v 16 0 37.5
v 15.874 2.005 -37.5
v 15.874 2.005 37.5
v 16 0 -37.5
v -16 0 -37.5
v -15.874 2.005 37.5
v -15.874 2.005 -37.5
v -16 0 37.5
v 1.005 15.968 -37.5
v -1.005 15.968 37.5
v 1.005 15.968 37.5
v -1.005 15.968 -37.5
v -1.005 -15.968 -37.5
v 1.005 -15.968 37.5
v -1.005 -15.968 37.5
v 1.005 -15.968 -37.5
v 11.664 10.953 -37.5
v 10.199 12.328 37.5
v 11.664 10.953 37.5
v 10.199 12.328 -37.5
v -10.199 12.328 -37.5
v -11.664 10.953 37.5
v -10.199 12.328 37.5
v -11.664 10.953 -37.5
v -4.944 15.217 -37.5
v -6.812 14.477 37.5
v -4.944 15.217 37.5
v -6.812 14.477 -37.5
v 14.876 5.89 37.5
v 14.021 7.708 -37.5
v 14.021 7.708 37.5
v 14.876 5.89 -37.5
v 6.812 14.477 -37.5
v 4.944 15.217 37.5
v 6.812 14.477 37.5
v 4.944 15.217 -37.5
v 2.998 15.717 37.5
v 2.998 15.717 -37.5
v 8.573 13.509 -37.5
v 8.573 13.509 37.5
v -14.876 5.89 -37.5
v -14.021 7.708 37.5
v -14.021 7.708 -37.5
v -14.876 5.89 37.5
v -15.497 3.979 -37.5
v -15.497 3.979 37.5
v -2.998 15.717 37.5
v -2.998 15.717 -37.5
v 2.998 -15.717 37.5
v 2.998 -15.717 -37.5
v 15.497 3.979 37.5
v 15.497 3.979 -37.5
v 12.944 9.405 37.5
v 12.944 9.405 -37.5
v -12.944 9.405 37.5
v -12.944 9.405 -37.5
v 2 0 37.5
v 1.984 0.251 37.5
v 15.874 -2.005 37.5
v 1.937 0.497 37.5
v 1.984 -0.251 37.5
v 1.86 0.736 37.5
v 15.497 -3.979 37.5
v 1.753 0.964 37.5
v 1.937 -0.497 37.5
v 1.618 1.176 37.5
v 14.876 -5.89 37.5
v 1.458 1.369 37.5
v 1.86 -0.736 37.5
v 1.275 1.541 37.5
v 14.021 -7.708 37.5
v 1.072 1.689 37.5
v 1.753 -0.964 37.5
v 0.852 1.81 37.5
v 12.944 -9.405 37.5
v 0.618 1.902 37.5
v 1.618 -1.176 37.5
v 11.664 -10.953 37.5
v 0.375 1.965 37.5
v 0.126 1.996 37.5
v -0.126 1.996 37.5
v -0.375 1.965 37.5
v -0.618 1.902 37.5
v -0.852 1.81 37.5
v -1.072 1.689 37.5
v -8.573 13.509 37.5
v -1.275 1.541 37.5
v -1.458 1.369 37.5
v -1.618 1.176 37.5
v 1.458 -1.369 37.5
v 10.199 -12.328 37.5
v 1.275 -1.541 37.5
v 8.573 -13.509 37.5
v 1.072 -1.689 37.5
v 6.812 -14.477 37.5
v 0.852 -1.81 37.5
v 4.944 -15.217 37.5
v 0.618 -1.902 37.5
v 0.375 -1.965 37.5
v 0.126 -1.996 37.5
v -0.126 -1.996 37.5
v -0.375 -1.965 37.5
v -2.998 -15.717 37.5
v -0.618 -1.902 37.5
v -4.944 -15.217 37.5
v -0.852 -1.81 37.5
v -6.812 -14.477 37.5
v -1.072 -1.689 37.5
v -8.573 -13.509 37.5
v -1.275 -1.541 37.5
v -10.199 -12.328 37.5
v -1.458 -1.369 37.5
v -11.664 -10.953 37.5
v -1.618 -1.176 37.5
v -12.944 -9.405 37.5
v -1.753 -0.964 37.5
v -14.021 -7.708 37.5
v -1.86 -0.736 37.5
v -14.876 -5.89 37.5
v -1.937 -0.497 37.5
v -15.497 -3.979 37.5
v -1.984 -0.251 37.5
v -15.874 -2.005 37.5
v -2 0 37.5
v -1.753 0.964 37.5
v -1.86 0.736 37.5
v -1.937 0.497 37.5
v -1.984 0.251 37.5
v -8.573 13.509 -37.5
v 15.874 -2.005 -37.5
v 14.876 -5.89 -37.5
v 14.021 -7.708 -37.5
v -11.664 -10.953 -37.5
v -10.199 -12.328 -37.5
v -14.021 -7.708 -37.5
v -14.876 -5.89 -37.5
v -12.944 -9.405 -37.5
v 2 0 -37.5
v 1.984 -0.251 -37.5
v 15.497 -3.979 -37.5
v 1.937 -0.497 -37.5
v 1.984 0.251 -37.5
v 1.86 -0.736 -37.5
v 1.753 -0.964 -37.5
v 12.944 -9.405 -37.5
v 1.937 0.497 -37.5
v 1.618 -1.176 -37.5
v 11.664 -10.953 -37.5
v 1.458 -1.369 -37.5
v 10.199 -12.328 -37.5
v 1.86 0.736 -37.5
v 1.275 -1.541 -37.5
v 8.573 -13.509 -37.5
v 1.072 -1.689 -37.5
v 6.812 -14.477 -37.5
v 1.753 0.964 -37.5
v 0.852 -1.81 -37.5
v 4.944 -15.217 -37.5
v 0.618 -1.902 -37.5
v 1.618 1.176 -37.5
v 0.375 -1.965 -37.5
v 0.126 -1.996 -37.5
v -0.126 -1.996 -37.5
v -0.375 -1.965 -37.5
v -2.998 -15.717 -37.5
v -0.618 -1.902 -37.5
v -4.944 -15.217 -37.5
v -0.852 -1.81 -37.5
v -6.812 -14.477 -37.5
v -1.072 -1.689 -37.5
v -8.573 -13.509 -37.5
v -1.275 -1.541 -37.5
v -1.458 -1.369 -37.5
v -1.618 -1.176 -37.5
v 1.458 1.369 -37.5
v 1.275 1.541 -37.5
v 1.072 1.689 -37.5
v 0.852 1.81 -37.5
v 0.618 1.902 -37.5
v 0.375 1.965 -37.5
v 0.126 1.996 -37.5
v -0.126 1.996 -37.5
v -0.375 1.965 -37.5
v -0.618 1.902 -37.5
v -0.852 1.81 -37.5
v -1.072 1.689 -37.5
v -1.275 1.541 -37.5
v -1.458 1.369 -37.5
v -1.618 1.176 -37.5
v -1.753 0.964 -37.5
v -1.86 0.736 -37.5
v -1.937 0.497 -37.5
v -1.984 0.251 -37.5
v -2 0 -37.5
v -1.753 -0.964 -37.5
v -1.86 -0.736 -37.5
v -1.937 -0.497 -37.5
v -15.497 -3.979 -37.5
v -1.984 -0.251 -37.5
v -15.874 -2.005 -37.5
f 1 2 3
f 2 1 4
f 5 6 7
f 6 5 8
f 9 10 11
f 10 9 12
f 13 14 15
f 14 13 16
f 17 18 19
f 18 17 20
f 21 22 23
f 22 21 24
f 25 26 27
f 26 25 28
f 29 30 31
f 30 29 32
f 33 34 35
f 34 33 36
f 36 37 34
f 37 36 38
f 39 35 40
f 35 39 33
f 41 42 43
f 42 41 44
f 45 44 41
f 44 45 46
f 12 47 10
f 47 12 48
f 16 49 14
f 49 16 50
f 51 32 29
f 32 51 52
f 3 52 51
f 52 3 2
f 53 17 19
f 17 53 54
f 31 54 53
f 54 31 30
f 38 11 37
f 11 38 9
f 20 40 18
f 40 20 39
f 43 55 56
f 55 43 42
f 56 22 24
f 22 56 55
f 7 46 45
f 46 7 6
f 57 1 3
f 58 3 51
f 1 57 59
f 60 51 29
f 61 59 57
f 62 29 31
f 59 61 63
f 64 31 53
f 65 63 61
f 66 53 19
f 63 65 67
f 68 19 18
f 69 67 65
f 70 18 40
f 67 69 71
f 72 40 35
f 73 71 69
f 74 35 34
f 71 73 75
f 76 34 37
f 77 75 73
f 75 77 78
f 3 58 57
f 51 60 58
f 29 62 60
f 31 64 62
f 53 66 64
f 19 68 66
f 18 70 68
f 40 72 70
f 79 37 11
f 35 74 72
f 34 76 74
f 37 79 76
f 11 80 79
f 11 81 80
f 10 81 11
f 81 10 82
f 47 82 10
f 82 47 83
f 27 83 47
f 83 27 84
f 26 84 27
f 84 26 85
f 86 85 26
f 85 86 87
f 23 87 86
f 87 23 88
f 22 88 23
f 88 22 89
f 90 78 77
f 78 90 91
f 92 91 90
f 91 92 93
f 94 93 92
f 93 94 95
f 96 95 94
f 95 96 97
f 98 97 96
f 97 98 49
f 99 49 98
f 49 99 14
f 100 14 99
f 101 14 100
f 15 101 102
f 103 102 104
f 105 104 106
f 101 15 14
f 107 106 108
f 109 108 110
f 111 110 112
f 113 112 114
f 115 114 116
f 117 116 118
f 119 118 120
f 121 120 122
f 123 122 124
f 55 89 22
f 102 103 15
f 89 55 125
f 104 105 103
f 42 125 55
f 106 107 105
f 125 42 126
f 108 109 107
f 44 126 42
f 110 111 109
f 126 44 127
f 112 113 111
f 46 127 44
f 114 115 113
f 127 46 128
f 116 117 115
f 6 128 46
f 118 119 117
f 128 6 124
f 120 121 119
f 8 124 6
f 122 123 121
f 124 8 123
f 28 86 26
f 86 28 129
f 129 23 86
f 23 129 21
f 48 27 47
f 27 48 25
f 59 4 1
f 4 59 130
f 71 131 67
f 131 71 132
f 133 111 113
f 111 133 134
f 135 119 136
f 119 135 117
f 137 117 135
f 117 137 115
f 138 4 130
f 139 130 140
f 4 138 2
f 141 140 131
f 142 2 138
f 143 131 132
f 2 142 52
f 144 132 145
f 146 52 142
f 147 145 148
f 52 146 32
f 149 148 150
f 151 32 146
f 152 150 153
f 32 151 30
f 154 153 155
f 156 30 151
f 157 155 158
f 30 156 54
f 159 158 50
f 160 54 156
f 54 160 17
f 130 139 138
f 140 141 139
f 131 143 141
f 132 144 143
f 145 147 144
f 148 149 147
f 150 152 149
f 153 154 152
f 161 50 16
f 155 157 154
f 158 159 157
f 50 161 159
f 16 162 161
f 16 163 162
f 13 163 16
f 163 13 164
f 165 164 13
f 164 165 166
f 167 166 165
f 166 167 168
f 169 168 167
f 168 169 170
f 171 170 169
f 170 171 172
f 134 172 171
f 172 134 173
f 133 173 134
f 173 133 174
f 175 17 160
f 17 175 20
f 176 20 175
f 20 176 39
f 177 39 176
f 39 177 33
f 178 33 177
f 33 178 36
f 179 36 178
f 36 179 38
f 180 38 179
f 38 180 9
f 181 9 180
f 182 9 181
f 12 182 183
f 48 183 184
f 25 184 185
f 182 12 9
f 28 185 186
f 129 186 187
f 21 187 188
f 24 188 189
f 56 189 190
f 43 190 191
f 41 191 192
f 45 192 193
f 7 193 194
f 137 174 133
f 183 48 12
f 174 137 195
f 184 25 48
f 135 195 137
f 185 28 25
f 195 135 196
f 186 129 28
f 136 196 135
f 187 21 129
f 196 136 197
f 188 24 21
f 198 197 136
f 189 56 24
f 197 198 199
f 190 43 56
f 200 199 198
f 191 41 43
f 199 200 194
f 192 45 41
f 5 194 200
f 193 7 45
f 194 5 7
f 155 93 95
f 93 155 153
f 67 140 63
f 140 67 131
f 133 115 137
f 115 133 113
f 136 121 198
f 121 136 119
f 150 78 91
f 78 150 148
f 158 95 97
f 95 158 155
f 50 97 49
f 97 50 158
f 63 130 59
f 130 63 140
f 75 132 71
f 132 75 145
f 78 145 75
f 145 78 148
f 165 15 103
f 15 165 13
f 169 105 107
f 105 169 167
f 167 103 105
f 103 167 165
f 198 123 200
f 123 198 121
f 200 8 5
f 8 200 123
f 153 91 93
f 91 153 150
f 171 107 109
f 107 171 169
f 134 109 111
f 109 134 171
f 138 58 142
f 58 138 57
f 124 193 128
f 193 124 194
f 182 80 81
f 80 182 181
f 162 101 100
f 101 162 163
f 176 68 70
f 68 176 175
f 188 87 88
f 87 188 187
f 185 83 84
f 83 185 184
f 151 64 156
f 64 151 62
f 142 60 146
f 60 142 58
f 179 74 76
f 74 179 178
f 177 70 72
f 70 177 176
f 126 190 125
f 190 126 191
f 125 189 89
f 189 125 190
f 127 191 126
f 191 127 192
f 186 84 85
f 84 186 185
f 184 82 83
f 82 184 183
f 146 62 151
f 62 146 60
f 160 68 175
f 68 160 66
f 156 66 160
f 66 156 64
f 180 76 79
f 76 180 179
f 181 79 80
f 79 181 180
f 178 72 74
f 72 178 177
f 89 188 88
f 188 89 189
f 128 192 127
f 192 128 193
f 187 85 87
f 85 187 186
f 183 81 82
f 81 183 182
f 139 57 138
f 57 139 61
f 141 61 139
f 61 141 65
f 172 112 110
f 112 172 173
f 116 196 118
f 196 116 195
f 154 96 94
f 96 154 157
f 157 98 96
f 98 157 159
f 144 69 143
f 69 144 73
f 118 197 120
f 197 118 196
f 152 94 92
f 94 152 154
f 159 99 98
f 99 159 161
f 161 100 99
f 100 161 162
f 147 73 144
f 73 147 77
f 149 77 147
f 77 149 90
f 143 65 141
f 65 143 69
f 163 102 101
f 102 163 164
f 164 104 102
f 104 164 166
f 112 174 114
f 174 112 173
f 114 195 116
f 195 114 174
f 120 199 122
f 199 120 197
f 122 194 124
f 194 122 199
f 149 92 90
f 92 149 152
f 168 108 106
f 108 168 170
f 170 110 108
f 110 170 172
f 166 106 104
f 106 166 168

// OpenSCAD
$fn = 50;


difference() {
	union() {
		translate(v = [0, 0, -37.5000000000]) {
			cylinder(h = 75, r = 16.0000000000);
		}
	}
	union() {
		translate(v = [0, 0, -100.0000000000]) {
			cylinder(h = 200, r = 2);
		}
	}
}
